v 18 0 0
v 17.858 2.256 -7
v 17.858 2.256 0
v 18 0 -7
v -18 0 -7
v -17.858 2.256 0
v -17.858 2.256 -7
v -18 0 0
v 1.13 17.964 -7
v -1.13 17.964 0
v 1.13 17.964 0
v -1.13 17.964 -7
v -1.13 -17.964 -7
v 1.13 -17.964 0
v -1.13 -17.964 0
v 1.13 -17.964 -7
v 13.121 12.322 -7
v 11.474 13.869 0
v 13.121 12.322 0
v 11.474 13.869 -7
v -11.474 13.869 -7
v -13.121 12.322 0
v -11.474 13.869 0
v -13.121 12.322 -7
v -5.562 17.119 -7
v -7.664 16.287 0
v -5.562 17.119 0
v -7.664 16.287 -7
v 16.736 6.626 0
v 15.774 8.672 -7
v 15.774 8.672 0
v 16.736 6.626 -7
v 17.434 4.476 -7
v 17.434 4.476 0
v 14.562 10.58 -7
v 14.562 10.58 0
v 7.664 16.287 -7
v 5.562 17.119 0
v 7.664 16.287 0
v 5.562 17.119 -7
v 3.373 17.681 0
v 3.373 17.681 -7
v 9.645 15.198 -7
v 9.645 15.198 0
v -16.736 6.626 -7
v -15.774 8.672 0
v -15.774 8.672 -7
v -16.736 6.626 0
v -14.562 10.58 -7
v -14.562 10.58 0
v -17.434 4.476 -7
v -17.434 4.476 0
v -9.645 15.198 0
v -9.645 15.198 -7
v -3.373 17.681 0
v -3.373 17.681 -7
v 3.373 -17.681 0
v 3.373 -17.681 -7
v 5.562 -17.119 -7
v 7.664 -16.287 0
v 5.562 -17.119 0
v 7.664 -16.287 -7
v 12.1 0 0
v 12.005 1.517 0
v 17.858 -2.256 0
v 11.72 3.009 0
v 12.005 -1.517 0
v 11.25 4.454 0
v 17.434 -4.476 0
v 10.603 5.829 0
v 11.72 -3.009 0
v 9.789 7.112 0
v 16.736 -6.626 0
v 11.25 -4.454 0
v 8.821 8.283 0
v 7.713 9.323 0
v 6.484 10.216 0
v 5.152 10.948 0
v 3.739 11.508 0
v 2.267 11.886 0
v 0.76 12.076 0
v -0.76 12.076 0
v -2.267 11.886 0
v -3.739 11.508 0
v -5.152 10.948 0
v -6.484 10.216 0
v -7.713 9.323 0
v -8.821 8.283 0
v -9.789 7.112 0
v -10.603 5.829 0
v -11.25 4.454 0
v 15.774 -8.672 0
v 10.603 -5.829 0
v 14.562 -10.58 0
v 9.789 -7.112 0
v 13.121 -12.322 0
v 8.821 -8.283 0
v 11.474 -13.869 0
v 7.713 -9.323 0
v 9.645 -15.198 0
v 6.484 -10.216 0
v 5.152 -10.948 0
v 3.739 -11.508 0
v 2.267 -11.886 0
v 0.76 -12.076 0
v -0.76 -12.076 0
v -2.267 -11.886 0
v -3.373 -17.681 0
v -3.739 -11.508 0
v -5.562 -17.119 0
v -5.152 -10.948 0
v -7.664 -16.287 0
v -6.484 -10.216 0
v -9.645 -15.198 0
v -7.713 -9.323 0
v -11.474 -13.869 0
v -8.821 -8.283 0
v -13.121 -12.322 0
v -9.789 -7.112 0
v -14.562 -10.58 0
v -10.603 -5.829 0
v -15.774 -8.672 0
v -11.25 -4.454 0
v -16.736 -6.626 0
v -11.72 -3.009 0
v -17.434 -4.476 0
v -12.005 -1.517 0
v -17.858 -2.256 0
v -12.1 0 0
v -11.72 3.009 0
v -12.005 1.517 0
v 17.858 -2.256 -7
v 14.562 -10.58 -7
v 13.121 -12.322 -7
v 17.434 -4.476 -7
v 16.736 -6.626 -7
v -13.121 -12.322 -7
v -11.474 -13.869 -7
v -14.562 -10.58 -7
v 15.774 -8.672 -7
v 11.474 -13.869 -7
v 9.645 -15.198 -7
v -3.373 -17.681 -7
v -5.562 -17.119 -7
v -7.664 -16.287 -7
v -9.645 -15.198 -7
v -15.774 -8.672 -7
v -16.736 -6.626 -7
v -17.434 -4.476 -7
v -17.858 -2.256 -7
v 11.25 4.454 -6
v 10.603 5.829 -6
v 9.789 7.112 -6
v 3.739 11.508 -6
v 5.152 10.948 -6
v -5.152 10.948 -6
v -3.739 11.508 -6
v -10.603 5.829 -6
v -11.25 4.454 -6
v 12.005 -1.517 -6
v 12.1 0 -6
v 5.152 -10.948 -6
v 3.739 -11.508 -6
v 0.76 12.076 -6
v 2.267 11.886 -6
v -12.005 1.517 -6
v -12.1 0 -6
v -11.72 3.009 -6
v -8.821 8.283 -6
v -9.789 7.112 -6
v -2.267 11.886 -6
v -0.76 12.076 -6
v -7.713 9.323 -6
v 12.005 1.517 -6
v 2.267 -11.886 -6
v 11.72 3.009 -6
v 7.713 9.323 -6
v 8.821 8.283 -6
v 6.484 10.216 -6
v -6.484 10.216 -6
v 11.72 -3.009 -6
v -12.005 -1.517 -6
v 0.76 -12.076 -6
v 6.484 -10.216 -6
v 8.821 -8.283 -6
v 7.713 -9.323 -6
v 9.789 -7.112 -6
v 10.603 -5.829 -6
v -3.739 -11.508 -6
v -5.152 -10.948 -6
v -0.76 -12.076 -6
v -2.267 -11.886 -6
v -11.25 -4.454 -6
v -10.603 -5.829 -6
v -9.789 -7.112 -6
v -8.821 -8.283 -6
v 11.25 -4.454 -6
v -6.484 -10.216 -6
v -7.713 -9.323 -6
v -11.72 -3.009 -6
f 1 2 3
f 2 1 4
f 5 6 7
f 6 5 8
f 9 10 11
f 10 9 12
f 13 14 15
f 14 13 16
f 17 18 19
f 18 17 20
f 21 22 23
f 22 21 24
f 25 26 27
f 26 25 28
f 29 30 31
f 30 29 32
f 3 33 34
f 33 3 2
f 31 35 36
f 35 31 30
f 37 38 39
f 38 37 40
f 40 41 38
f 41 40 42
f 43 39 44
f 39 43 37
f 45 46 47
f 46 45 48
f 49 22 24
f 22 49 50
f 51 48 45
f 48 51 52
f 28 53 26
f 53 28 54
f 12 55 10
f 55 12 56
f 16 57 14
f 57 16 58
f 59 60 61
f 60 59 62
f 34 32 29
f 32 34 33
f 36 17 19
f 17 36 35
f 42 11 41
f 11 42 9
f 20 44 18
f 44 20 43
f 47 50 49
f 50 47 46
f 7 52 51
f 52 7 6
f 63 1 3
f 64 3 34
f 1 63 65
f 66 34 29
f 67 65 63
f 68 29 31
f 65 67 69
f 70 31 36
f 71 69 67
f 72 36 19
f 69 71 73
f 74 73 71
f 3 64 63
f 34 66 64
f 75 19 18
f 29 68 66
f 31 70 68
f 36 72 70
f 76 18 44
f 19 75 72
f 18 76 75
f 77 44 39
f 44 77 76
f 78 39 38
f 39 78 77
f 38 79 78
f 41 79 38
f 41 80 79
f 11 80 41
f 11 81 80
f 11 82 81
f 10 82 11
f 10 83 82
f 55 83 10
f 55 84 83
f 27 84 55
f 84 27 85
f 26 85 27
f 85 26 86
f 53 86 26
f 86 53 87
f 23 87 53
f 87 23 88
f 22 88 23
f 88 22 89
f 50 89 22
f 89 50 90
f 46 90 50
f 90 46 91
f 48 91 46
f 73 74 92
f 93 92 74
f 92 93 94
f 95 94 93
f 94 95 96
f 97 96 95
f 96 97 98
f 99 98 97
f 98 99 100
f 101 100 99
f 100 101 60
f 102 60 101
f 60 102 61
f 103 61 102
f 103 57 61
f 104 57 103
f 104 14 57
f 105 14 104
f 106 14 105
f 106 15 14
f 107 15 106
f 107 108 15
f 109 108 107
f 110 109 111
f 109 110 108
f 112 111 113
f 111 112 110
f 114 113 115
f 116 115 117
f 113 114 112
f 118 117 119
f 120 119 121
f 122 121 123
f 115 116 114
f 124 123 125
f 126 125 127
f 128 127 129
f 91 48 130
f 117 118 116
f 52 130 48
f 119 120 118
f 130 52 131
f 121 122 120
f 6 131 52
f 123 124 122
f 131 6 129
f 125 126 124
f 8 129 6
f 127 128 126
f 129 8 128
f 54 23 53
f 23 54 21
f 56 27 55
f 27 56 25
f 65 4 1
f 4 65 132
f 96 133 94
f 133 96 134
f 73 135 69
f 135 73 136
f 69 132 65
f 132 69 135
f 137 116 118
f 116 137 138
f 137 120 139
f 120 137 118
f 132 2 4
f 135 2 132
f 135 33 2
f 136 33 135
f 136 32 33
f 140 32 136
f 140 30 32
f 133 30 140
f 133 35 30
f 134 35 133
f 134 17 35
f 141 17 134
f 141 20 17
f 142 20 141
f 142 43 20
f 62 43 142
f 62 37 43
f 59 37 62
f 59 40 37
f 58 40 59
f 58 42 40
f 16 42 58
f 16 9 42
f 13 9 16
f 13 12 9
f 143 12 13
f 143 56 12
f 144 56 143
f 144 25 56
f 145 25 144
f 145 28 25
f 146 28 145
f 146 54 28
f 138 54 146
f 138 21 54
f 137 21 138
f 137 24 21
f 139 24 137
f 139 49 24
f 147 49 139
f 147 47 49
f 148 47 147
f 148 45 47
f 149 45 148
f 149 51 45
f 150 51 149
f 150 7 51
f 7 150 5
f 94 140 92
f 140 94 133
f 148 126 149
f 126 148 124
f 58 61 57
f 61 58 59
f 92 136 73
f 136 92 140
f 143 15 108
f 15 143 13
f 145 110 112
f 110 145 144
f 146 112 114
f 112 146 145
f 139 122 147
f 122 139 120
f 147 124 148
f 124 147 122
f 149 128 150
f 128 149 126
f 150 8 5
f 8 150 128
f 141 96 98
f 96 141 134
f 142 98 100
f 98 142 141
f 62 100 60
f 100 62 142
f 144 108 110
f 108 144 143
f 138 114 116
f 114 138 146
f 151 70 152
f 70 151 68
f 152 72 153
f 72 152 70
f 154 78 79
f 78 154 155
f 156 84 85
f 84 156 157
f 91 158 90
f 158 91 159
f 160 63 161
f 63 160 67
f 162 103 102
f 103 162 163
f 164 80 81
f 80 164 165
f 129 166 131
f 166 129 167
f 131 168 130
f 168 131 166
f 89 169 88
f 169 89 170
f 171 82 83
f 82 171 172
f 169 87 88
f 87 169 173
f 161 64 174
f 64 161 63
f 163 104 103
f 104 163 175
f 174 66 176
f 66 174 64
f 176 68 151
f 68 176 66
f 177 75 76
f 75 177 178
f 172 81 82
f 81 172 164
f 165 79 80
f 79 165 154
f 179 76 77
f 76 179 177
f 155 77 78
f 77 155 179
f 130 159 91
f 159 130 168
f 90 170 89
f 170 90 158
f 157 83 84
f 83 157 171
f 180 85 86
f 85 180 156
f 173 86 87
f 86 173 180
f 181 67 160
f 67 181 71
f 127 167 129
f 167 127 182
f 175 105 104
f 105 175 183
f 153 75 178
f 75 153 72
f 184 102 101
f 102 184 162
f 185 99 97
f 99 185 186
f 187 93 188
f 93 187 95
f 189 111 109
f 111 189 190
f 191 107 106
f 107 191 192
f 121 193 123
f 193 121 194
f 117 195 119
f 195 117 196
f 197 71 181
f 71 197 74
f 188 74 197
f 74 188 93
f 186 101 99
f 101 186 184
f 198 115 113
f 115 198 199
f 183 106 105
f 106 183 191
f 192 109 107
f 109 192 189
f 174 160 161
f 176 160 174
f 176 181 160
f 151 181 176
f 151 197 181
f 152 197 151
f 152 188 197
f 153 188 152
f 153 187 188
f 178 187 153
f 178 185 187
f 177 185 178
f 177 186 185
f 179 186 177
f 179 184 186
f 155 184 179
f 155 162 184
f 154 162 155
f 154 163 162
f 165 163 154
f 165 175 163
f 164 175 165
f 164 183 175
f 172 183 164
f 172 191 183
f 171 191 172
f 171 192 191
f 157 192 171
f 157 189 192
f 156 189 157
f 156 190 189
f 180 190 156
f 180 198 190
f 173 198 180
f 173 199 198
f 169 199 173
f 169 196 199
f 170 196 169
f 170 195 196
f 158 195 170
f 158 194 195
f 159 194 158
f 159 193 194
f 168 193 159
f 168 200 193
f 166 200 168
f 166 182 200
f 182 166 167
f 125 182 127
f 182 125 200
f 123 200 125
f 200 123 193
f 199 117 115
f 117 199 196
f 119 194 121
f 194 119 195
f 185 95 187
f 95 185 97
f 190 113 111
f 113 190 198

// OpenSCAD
$fn = 50;


difference() {
	union() {
		translate(v = [0, 0, -7.0000000000]) {
			cylinder(h = 7, r = 18.0000000000);
		}
	}
	union() {
		#translate(v = [0, 0, -6.0000000000]) {
			cylinder(h = 6, r = 12.1000000000);
		}
	}
}
